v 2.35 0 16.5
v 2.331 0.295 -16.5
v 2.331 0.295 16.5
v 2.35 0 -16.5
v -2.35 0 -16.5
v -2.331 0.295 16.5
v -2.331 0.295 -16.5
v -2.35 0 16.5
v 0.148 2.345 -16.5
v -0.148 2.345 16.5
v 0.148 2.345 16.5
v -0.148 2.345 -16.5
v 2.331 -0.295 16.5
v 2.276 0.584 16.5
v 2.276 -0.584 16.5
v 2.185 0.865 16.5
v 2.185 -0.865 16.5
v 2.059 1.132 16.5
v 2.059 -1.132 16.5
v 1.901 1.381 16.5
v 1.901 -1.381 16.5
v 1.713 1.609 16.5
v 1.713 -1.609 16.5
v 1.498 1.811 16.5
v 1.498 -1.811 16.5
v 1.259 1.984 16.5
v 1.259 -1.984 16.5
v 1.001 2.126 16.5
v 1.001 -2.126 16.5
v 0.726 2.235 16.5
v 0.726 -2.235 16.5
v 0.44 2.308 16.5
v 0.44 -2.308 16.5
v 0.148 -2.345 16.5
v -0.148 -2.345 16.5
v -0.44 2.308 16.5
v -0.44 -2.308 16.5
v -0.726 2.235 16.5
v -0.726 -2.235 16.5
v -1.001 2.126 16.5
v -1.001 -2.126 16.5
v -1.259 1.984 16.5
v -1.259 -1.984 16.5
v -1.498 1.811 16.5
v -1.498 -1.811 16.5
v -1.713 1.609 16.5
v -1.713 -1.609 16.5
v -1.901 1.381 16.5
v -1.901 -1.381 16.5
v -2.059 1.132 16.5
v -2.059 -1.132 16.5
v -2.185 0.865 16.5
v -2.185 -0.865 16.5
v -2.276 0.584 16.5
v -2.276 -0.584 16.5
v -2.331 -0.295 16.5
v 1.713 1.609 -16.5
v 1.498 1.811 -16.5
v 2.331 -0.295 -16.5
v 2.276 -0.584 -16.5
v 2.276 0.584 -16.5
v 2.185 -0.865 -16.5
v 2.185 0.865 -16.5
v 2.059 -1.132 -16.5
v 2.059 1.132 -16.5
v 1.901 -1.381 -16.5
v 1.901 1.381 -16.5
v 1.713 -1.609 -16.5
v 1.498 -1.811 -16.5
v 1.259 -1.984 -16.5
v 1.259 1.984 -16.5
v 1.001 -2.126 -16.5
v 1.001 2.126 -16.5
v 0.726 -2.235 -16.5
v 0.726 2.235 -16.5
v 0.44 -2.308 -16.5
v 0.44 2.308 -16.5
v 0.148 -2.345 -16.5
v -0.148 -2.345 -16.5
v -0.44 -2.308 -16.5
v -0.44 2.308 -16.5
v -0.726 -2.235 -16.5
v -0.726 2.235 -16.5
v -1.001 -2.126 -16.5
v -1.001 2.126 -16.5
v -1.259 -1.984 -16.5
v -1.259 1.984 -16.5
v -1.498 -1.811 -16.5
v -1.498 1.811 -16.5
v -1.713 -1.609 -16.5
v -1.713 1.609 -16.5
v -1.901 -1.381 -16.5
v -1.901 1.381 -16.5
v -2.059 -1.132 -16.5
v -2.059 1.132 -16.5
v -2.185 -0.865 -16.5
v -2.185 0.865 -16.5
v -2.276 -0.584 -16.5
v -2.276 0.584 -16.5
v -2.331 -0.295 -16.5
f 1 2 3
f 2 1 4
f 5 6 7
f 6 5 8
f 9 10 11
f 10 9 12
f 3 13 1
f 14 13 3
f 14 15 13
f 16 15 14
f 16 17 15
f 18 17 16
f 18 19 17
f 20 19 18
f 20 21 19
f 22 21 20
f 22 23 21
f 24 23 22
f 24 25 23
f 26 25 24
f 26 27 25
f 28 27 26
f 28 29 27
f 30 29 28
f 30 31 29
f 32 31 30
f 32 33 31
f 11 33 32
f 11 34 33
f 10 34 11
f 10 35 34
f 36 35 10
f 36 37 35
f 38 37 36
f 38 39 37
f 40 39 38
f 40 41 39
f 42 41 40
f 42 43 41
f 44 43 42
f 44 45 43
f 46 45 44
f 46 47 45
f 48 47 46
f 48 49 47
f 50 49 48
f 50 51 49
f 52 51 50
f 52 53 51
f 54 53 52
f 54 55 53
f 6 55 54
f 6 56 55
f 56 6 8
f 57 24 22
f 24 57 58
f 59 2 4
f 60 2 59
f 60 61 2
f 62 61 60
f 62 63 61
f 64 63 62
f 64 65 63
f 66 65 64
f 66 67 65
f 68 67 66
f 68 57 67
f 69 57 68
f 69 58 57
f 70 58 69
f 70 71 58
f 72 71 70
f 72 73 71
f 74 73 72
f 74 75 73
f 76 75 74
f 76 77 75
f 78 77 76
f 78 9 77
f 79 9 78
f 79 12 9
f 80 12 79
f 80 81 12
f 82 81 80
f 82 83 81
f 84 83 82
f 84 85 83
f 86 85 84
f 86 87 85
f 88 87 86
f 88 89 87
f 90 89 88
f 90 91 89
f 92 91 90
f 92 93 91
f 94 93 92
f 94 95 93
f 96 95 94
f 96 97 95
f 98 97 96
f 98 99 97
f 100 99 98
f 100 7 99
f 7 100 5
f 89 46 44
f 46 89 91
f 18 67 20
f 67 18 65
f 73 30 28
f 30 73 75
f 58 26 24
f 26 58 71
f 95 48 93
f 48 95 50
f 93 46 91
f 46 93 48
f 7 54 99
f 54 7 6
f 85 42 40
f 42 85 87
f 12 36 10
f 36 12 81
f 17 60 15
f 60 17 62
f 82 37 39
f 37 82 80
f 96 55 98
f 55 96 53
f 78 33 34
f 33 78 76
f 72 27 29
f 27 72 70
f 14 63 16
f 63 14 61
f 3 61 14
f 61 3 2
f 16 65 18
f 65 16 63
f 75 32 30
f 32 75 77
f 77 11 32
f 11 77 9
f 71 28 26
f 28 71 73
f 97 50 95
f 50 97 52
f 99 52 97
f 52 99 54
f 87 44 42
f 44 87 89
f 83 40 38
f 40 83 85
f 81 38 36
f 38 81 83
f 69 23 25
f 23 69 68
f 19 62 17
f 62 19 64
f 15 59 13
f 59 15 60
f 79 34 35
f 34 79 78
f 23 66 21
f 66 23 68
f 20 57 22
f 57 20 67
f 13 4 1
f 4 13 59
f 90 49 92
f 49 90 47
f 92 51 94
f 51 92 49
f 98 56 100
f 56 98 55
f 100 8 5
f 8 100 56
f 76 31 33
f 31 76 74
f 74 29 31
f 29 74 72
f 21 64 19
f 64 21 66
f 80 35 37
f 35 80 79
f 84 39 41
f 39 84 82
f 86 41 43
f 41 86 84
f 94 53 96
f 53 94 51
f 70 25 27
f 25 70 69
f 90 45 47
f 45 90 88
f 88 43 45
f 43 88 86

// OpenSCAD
$fn = 50;


difference() {
	union() {
		translate(v = [0, 0, -16.5000000000]) {
			cylinder(h = 33, r = 2.3500000000);
		}
	}
	union() {
		translate(v = [0, 0, -100.0000000000]) {
			cylinder(h = 200, r = 0);
		}
	}
}
